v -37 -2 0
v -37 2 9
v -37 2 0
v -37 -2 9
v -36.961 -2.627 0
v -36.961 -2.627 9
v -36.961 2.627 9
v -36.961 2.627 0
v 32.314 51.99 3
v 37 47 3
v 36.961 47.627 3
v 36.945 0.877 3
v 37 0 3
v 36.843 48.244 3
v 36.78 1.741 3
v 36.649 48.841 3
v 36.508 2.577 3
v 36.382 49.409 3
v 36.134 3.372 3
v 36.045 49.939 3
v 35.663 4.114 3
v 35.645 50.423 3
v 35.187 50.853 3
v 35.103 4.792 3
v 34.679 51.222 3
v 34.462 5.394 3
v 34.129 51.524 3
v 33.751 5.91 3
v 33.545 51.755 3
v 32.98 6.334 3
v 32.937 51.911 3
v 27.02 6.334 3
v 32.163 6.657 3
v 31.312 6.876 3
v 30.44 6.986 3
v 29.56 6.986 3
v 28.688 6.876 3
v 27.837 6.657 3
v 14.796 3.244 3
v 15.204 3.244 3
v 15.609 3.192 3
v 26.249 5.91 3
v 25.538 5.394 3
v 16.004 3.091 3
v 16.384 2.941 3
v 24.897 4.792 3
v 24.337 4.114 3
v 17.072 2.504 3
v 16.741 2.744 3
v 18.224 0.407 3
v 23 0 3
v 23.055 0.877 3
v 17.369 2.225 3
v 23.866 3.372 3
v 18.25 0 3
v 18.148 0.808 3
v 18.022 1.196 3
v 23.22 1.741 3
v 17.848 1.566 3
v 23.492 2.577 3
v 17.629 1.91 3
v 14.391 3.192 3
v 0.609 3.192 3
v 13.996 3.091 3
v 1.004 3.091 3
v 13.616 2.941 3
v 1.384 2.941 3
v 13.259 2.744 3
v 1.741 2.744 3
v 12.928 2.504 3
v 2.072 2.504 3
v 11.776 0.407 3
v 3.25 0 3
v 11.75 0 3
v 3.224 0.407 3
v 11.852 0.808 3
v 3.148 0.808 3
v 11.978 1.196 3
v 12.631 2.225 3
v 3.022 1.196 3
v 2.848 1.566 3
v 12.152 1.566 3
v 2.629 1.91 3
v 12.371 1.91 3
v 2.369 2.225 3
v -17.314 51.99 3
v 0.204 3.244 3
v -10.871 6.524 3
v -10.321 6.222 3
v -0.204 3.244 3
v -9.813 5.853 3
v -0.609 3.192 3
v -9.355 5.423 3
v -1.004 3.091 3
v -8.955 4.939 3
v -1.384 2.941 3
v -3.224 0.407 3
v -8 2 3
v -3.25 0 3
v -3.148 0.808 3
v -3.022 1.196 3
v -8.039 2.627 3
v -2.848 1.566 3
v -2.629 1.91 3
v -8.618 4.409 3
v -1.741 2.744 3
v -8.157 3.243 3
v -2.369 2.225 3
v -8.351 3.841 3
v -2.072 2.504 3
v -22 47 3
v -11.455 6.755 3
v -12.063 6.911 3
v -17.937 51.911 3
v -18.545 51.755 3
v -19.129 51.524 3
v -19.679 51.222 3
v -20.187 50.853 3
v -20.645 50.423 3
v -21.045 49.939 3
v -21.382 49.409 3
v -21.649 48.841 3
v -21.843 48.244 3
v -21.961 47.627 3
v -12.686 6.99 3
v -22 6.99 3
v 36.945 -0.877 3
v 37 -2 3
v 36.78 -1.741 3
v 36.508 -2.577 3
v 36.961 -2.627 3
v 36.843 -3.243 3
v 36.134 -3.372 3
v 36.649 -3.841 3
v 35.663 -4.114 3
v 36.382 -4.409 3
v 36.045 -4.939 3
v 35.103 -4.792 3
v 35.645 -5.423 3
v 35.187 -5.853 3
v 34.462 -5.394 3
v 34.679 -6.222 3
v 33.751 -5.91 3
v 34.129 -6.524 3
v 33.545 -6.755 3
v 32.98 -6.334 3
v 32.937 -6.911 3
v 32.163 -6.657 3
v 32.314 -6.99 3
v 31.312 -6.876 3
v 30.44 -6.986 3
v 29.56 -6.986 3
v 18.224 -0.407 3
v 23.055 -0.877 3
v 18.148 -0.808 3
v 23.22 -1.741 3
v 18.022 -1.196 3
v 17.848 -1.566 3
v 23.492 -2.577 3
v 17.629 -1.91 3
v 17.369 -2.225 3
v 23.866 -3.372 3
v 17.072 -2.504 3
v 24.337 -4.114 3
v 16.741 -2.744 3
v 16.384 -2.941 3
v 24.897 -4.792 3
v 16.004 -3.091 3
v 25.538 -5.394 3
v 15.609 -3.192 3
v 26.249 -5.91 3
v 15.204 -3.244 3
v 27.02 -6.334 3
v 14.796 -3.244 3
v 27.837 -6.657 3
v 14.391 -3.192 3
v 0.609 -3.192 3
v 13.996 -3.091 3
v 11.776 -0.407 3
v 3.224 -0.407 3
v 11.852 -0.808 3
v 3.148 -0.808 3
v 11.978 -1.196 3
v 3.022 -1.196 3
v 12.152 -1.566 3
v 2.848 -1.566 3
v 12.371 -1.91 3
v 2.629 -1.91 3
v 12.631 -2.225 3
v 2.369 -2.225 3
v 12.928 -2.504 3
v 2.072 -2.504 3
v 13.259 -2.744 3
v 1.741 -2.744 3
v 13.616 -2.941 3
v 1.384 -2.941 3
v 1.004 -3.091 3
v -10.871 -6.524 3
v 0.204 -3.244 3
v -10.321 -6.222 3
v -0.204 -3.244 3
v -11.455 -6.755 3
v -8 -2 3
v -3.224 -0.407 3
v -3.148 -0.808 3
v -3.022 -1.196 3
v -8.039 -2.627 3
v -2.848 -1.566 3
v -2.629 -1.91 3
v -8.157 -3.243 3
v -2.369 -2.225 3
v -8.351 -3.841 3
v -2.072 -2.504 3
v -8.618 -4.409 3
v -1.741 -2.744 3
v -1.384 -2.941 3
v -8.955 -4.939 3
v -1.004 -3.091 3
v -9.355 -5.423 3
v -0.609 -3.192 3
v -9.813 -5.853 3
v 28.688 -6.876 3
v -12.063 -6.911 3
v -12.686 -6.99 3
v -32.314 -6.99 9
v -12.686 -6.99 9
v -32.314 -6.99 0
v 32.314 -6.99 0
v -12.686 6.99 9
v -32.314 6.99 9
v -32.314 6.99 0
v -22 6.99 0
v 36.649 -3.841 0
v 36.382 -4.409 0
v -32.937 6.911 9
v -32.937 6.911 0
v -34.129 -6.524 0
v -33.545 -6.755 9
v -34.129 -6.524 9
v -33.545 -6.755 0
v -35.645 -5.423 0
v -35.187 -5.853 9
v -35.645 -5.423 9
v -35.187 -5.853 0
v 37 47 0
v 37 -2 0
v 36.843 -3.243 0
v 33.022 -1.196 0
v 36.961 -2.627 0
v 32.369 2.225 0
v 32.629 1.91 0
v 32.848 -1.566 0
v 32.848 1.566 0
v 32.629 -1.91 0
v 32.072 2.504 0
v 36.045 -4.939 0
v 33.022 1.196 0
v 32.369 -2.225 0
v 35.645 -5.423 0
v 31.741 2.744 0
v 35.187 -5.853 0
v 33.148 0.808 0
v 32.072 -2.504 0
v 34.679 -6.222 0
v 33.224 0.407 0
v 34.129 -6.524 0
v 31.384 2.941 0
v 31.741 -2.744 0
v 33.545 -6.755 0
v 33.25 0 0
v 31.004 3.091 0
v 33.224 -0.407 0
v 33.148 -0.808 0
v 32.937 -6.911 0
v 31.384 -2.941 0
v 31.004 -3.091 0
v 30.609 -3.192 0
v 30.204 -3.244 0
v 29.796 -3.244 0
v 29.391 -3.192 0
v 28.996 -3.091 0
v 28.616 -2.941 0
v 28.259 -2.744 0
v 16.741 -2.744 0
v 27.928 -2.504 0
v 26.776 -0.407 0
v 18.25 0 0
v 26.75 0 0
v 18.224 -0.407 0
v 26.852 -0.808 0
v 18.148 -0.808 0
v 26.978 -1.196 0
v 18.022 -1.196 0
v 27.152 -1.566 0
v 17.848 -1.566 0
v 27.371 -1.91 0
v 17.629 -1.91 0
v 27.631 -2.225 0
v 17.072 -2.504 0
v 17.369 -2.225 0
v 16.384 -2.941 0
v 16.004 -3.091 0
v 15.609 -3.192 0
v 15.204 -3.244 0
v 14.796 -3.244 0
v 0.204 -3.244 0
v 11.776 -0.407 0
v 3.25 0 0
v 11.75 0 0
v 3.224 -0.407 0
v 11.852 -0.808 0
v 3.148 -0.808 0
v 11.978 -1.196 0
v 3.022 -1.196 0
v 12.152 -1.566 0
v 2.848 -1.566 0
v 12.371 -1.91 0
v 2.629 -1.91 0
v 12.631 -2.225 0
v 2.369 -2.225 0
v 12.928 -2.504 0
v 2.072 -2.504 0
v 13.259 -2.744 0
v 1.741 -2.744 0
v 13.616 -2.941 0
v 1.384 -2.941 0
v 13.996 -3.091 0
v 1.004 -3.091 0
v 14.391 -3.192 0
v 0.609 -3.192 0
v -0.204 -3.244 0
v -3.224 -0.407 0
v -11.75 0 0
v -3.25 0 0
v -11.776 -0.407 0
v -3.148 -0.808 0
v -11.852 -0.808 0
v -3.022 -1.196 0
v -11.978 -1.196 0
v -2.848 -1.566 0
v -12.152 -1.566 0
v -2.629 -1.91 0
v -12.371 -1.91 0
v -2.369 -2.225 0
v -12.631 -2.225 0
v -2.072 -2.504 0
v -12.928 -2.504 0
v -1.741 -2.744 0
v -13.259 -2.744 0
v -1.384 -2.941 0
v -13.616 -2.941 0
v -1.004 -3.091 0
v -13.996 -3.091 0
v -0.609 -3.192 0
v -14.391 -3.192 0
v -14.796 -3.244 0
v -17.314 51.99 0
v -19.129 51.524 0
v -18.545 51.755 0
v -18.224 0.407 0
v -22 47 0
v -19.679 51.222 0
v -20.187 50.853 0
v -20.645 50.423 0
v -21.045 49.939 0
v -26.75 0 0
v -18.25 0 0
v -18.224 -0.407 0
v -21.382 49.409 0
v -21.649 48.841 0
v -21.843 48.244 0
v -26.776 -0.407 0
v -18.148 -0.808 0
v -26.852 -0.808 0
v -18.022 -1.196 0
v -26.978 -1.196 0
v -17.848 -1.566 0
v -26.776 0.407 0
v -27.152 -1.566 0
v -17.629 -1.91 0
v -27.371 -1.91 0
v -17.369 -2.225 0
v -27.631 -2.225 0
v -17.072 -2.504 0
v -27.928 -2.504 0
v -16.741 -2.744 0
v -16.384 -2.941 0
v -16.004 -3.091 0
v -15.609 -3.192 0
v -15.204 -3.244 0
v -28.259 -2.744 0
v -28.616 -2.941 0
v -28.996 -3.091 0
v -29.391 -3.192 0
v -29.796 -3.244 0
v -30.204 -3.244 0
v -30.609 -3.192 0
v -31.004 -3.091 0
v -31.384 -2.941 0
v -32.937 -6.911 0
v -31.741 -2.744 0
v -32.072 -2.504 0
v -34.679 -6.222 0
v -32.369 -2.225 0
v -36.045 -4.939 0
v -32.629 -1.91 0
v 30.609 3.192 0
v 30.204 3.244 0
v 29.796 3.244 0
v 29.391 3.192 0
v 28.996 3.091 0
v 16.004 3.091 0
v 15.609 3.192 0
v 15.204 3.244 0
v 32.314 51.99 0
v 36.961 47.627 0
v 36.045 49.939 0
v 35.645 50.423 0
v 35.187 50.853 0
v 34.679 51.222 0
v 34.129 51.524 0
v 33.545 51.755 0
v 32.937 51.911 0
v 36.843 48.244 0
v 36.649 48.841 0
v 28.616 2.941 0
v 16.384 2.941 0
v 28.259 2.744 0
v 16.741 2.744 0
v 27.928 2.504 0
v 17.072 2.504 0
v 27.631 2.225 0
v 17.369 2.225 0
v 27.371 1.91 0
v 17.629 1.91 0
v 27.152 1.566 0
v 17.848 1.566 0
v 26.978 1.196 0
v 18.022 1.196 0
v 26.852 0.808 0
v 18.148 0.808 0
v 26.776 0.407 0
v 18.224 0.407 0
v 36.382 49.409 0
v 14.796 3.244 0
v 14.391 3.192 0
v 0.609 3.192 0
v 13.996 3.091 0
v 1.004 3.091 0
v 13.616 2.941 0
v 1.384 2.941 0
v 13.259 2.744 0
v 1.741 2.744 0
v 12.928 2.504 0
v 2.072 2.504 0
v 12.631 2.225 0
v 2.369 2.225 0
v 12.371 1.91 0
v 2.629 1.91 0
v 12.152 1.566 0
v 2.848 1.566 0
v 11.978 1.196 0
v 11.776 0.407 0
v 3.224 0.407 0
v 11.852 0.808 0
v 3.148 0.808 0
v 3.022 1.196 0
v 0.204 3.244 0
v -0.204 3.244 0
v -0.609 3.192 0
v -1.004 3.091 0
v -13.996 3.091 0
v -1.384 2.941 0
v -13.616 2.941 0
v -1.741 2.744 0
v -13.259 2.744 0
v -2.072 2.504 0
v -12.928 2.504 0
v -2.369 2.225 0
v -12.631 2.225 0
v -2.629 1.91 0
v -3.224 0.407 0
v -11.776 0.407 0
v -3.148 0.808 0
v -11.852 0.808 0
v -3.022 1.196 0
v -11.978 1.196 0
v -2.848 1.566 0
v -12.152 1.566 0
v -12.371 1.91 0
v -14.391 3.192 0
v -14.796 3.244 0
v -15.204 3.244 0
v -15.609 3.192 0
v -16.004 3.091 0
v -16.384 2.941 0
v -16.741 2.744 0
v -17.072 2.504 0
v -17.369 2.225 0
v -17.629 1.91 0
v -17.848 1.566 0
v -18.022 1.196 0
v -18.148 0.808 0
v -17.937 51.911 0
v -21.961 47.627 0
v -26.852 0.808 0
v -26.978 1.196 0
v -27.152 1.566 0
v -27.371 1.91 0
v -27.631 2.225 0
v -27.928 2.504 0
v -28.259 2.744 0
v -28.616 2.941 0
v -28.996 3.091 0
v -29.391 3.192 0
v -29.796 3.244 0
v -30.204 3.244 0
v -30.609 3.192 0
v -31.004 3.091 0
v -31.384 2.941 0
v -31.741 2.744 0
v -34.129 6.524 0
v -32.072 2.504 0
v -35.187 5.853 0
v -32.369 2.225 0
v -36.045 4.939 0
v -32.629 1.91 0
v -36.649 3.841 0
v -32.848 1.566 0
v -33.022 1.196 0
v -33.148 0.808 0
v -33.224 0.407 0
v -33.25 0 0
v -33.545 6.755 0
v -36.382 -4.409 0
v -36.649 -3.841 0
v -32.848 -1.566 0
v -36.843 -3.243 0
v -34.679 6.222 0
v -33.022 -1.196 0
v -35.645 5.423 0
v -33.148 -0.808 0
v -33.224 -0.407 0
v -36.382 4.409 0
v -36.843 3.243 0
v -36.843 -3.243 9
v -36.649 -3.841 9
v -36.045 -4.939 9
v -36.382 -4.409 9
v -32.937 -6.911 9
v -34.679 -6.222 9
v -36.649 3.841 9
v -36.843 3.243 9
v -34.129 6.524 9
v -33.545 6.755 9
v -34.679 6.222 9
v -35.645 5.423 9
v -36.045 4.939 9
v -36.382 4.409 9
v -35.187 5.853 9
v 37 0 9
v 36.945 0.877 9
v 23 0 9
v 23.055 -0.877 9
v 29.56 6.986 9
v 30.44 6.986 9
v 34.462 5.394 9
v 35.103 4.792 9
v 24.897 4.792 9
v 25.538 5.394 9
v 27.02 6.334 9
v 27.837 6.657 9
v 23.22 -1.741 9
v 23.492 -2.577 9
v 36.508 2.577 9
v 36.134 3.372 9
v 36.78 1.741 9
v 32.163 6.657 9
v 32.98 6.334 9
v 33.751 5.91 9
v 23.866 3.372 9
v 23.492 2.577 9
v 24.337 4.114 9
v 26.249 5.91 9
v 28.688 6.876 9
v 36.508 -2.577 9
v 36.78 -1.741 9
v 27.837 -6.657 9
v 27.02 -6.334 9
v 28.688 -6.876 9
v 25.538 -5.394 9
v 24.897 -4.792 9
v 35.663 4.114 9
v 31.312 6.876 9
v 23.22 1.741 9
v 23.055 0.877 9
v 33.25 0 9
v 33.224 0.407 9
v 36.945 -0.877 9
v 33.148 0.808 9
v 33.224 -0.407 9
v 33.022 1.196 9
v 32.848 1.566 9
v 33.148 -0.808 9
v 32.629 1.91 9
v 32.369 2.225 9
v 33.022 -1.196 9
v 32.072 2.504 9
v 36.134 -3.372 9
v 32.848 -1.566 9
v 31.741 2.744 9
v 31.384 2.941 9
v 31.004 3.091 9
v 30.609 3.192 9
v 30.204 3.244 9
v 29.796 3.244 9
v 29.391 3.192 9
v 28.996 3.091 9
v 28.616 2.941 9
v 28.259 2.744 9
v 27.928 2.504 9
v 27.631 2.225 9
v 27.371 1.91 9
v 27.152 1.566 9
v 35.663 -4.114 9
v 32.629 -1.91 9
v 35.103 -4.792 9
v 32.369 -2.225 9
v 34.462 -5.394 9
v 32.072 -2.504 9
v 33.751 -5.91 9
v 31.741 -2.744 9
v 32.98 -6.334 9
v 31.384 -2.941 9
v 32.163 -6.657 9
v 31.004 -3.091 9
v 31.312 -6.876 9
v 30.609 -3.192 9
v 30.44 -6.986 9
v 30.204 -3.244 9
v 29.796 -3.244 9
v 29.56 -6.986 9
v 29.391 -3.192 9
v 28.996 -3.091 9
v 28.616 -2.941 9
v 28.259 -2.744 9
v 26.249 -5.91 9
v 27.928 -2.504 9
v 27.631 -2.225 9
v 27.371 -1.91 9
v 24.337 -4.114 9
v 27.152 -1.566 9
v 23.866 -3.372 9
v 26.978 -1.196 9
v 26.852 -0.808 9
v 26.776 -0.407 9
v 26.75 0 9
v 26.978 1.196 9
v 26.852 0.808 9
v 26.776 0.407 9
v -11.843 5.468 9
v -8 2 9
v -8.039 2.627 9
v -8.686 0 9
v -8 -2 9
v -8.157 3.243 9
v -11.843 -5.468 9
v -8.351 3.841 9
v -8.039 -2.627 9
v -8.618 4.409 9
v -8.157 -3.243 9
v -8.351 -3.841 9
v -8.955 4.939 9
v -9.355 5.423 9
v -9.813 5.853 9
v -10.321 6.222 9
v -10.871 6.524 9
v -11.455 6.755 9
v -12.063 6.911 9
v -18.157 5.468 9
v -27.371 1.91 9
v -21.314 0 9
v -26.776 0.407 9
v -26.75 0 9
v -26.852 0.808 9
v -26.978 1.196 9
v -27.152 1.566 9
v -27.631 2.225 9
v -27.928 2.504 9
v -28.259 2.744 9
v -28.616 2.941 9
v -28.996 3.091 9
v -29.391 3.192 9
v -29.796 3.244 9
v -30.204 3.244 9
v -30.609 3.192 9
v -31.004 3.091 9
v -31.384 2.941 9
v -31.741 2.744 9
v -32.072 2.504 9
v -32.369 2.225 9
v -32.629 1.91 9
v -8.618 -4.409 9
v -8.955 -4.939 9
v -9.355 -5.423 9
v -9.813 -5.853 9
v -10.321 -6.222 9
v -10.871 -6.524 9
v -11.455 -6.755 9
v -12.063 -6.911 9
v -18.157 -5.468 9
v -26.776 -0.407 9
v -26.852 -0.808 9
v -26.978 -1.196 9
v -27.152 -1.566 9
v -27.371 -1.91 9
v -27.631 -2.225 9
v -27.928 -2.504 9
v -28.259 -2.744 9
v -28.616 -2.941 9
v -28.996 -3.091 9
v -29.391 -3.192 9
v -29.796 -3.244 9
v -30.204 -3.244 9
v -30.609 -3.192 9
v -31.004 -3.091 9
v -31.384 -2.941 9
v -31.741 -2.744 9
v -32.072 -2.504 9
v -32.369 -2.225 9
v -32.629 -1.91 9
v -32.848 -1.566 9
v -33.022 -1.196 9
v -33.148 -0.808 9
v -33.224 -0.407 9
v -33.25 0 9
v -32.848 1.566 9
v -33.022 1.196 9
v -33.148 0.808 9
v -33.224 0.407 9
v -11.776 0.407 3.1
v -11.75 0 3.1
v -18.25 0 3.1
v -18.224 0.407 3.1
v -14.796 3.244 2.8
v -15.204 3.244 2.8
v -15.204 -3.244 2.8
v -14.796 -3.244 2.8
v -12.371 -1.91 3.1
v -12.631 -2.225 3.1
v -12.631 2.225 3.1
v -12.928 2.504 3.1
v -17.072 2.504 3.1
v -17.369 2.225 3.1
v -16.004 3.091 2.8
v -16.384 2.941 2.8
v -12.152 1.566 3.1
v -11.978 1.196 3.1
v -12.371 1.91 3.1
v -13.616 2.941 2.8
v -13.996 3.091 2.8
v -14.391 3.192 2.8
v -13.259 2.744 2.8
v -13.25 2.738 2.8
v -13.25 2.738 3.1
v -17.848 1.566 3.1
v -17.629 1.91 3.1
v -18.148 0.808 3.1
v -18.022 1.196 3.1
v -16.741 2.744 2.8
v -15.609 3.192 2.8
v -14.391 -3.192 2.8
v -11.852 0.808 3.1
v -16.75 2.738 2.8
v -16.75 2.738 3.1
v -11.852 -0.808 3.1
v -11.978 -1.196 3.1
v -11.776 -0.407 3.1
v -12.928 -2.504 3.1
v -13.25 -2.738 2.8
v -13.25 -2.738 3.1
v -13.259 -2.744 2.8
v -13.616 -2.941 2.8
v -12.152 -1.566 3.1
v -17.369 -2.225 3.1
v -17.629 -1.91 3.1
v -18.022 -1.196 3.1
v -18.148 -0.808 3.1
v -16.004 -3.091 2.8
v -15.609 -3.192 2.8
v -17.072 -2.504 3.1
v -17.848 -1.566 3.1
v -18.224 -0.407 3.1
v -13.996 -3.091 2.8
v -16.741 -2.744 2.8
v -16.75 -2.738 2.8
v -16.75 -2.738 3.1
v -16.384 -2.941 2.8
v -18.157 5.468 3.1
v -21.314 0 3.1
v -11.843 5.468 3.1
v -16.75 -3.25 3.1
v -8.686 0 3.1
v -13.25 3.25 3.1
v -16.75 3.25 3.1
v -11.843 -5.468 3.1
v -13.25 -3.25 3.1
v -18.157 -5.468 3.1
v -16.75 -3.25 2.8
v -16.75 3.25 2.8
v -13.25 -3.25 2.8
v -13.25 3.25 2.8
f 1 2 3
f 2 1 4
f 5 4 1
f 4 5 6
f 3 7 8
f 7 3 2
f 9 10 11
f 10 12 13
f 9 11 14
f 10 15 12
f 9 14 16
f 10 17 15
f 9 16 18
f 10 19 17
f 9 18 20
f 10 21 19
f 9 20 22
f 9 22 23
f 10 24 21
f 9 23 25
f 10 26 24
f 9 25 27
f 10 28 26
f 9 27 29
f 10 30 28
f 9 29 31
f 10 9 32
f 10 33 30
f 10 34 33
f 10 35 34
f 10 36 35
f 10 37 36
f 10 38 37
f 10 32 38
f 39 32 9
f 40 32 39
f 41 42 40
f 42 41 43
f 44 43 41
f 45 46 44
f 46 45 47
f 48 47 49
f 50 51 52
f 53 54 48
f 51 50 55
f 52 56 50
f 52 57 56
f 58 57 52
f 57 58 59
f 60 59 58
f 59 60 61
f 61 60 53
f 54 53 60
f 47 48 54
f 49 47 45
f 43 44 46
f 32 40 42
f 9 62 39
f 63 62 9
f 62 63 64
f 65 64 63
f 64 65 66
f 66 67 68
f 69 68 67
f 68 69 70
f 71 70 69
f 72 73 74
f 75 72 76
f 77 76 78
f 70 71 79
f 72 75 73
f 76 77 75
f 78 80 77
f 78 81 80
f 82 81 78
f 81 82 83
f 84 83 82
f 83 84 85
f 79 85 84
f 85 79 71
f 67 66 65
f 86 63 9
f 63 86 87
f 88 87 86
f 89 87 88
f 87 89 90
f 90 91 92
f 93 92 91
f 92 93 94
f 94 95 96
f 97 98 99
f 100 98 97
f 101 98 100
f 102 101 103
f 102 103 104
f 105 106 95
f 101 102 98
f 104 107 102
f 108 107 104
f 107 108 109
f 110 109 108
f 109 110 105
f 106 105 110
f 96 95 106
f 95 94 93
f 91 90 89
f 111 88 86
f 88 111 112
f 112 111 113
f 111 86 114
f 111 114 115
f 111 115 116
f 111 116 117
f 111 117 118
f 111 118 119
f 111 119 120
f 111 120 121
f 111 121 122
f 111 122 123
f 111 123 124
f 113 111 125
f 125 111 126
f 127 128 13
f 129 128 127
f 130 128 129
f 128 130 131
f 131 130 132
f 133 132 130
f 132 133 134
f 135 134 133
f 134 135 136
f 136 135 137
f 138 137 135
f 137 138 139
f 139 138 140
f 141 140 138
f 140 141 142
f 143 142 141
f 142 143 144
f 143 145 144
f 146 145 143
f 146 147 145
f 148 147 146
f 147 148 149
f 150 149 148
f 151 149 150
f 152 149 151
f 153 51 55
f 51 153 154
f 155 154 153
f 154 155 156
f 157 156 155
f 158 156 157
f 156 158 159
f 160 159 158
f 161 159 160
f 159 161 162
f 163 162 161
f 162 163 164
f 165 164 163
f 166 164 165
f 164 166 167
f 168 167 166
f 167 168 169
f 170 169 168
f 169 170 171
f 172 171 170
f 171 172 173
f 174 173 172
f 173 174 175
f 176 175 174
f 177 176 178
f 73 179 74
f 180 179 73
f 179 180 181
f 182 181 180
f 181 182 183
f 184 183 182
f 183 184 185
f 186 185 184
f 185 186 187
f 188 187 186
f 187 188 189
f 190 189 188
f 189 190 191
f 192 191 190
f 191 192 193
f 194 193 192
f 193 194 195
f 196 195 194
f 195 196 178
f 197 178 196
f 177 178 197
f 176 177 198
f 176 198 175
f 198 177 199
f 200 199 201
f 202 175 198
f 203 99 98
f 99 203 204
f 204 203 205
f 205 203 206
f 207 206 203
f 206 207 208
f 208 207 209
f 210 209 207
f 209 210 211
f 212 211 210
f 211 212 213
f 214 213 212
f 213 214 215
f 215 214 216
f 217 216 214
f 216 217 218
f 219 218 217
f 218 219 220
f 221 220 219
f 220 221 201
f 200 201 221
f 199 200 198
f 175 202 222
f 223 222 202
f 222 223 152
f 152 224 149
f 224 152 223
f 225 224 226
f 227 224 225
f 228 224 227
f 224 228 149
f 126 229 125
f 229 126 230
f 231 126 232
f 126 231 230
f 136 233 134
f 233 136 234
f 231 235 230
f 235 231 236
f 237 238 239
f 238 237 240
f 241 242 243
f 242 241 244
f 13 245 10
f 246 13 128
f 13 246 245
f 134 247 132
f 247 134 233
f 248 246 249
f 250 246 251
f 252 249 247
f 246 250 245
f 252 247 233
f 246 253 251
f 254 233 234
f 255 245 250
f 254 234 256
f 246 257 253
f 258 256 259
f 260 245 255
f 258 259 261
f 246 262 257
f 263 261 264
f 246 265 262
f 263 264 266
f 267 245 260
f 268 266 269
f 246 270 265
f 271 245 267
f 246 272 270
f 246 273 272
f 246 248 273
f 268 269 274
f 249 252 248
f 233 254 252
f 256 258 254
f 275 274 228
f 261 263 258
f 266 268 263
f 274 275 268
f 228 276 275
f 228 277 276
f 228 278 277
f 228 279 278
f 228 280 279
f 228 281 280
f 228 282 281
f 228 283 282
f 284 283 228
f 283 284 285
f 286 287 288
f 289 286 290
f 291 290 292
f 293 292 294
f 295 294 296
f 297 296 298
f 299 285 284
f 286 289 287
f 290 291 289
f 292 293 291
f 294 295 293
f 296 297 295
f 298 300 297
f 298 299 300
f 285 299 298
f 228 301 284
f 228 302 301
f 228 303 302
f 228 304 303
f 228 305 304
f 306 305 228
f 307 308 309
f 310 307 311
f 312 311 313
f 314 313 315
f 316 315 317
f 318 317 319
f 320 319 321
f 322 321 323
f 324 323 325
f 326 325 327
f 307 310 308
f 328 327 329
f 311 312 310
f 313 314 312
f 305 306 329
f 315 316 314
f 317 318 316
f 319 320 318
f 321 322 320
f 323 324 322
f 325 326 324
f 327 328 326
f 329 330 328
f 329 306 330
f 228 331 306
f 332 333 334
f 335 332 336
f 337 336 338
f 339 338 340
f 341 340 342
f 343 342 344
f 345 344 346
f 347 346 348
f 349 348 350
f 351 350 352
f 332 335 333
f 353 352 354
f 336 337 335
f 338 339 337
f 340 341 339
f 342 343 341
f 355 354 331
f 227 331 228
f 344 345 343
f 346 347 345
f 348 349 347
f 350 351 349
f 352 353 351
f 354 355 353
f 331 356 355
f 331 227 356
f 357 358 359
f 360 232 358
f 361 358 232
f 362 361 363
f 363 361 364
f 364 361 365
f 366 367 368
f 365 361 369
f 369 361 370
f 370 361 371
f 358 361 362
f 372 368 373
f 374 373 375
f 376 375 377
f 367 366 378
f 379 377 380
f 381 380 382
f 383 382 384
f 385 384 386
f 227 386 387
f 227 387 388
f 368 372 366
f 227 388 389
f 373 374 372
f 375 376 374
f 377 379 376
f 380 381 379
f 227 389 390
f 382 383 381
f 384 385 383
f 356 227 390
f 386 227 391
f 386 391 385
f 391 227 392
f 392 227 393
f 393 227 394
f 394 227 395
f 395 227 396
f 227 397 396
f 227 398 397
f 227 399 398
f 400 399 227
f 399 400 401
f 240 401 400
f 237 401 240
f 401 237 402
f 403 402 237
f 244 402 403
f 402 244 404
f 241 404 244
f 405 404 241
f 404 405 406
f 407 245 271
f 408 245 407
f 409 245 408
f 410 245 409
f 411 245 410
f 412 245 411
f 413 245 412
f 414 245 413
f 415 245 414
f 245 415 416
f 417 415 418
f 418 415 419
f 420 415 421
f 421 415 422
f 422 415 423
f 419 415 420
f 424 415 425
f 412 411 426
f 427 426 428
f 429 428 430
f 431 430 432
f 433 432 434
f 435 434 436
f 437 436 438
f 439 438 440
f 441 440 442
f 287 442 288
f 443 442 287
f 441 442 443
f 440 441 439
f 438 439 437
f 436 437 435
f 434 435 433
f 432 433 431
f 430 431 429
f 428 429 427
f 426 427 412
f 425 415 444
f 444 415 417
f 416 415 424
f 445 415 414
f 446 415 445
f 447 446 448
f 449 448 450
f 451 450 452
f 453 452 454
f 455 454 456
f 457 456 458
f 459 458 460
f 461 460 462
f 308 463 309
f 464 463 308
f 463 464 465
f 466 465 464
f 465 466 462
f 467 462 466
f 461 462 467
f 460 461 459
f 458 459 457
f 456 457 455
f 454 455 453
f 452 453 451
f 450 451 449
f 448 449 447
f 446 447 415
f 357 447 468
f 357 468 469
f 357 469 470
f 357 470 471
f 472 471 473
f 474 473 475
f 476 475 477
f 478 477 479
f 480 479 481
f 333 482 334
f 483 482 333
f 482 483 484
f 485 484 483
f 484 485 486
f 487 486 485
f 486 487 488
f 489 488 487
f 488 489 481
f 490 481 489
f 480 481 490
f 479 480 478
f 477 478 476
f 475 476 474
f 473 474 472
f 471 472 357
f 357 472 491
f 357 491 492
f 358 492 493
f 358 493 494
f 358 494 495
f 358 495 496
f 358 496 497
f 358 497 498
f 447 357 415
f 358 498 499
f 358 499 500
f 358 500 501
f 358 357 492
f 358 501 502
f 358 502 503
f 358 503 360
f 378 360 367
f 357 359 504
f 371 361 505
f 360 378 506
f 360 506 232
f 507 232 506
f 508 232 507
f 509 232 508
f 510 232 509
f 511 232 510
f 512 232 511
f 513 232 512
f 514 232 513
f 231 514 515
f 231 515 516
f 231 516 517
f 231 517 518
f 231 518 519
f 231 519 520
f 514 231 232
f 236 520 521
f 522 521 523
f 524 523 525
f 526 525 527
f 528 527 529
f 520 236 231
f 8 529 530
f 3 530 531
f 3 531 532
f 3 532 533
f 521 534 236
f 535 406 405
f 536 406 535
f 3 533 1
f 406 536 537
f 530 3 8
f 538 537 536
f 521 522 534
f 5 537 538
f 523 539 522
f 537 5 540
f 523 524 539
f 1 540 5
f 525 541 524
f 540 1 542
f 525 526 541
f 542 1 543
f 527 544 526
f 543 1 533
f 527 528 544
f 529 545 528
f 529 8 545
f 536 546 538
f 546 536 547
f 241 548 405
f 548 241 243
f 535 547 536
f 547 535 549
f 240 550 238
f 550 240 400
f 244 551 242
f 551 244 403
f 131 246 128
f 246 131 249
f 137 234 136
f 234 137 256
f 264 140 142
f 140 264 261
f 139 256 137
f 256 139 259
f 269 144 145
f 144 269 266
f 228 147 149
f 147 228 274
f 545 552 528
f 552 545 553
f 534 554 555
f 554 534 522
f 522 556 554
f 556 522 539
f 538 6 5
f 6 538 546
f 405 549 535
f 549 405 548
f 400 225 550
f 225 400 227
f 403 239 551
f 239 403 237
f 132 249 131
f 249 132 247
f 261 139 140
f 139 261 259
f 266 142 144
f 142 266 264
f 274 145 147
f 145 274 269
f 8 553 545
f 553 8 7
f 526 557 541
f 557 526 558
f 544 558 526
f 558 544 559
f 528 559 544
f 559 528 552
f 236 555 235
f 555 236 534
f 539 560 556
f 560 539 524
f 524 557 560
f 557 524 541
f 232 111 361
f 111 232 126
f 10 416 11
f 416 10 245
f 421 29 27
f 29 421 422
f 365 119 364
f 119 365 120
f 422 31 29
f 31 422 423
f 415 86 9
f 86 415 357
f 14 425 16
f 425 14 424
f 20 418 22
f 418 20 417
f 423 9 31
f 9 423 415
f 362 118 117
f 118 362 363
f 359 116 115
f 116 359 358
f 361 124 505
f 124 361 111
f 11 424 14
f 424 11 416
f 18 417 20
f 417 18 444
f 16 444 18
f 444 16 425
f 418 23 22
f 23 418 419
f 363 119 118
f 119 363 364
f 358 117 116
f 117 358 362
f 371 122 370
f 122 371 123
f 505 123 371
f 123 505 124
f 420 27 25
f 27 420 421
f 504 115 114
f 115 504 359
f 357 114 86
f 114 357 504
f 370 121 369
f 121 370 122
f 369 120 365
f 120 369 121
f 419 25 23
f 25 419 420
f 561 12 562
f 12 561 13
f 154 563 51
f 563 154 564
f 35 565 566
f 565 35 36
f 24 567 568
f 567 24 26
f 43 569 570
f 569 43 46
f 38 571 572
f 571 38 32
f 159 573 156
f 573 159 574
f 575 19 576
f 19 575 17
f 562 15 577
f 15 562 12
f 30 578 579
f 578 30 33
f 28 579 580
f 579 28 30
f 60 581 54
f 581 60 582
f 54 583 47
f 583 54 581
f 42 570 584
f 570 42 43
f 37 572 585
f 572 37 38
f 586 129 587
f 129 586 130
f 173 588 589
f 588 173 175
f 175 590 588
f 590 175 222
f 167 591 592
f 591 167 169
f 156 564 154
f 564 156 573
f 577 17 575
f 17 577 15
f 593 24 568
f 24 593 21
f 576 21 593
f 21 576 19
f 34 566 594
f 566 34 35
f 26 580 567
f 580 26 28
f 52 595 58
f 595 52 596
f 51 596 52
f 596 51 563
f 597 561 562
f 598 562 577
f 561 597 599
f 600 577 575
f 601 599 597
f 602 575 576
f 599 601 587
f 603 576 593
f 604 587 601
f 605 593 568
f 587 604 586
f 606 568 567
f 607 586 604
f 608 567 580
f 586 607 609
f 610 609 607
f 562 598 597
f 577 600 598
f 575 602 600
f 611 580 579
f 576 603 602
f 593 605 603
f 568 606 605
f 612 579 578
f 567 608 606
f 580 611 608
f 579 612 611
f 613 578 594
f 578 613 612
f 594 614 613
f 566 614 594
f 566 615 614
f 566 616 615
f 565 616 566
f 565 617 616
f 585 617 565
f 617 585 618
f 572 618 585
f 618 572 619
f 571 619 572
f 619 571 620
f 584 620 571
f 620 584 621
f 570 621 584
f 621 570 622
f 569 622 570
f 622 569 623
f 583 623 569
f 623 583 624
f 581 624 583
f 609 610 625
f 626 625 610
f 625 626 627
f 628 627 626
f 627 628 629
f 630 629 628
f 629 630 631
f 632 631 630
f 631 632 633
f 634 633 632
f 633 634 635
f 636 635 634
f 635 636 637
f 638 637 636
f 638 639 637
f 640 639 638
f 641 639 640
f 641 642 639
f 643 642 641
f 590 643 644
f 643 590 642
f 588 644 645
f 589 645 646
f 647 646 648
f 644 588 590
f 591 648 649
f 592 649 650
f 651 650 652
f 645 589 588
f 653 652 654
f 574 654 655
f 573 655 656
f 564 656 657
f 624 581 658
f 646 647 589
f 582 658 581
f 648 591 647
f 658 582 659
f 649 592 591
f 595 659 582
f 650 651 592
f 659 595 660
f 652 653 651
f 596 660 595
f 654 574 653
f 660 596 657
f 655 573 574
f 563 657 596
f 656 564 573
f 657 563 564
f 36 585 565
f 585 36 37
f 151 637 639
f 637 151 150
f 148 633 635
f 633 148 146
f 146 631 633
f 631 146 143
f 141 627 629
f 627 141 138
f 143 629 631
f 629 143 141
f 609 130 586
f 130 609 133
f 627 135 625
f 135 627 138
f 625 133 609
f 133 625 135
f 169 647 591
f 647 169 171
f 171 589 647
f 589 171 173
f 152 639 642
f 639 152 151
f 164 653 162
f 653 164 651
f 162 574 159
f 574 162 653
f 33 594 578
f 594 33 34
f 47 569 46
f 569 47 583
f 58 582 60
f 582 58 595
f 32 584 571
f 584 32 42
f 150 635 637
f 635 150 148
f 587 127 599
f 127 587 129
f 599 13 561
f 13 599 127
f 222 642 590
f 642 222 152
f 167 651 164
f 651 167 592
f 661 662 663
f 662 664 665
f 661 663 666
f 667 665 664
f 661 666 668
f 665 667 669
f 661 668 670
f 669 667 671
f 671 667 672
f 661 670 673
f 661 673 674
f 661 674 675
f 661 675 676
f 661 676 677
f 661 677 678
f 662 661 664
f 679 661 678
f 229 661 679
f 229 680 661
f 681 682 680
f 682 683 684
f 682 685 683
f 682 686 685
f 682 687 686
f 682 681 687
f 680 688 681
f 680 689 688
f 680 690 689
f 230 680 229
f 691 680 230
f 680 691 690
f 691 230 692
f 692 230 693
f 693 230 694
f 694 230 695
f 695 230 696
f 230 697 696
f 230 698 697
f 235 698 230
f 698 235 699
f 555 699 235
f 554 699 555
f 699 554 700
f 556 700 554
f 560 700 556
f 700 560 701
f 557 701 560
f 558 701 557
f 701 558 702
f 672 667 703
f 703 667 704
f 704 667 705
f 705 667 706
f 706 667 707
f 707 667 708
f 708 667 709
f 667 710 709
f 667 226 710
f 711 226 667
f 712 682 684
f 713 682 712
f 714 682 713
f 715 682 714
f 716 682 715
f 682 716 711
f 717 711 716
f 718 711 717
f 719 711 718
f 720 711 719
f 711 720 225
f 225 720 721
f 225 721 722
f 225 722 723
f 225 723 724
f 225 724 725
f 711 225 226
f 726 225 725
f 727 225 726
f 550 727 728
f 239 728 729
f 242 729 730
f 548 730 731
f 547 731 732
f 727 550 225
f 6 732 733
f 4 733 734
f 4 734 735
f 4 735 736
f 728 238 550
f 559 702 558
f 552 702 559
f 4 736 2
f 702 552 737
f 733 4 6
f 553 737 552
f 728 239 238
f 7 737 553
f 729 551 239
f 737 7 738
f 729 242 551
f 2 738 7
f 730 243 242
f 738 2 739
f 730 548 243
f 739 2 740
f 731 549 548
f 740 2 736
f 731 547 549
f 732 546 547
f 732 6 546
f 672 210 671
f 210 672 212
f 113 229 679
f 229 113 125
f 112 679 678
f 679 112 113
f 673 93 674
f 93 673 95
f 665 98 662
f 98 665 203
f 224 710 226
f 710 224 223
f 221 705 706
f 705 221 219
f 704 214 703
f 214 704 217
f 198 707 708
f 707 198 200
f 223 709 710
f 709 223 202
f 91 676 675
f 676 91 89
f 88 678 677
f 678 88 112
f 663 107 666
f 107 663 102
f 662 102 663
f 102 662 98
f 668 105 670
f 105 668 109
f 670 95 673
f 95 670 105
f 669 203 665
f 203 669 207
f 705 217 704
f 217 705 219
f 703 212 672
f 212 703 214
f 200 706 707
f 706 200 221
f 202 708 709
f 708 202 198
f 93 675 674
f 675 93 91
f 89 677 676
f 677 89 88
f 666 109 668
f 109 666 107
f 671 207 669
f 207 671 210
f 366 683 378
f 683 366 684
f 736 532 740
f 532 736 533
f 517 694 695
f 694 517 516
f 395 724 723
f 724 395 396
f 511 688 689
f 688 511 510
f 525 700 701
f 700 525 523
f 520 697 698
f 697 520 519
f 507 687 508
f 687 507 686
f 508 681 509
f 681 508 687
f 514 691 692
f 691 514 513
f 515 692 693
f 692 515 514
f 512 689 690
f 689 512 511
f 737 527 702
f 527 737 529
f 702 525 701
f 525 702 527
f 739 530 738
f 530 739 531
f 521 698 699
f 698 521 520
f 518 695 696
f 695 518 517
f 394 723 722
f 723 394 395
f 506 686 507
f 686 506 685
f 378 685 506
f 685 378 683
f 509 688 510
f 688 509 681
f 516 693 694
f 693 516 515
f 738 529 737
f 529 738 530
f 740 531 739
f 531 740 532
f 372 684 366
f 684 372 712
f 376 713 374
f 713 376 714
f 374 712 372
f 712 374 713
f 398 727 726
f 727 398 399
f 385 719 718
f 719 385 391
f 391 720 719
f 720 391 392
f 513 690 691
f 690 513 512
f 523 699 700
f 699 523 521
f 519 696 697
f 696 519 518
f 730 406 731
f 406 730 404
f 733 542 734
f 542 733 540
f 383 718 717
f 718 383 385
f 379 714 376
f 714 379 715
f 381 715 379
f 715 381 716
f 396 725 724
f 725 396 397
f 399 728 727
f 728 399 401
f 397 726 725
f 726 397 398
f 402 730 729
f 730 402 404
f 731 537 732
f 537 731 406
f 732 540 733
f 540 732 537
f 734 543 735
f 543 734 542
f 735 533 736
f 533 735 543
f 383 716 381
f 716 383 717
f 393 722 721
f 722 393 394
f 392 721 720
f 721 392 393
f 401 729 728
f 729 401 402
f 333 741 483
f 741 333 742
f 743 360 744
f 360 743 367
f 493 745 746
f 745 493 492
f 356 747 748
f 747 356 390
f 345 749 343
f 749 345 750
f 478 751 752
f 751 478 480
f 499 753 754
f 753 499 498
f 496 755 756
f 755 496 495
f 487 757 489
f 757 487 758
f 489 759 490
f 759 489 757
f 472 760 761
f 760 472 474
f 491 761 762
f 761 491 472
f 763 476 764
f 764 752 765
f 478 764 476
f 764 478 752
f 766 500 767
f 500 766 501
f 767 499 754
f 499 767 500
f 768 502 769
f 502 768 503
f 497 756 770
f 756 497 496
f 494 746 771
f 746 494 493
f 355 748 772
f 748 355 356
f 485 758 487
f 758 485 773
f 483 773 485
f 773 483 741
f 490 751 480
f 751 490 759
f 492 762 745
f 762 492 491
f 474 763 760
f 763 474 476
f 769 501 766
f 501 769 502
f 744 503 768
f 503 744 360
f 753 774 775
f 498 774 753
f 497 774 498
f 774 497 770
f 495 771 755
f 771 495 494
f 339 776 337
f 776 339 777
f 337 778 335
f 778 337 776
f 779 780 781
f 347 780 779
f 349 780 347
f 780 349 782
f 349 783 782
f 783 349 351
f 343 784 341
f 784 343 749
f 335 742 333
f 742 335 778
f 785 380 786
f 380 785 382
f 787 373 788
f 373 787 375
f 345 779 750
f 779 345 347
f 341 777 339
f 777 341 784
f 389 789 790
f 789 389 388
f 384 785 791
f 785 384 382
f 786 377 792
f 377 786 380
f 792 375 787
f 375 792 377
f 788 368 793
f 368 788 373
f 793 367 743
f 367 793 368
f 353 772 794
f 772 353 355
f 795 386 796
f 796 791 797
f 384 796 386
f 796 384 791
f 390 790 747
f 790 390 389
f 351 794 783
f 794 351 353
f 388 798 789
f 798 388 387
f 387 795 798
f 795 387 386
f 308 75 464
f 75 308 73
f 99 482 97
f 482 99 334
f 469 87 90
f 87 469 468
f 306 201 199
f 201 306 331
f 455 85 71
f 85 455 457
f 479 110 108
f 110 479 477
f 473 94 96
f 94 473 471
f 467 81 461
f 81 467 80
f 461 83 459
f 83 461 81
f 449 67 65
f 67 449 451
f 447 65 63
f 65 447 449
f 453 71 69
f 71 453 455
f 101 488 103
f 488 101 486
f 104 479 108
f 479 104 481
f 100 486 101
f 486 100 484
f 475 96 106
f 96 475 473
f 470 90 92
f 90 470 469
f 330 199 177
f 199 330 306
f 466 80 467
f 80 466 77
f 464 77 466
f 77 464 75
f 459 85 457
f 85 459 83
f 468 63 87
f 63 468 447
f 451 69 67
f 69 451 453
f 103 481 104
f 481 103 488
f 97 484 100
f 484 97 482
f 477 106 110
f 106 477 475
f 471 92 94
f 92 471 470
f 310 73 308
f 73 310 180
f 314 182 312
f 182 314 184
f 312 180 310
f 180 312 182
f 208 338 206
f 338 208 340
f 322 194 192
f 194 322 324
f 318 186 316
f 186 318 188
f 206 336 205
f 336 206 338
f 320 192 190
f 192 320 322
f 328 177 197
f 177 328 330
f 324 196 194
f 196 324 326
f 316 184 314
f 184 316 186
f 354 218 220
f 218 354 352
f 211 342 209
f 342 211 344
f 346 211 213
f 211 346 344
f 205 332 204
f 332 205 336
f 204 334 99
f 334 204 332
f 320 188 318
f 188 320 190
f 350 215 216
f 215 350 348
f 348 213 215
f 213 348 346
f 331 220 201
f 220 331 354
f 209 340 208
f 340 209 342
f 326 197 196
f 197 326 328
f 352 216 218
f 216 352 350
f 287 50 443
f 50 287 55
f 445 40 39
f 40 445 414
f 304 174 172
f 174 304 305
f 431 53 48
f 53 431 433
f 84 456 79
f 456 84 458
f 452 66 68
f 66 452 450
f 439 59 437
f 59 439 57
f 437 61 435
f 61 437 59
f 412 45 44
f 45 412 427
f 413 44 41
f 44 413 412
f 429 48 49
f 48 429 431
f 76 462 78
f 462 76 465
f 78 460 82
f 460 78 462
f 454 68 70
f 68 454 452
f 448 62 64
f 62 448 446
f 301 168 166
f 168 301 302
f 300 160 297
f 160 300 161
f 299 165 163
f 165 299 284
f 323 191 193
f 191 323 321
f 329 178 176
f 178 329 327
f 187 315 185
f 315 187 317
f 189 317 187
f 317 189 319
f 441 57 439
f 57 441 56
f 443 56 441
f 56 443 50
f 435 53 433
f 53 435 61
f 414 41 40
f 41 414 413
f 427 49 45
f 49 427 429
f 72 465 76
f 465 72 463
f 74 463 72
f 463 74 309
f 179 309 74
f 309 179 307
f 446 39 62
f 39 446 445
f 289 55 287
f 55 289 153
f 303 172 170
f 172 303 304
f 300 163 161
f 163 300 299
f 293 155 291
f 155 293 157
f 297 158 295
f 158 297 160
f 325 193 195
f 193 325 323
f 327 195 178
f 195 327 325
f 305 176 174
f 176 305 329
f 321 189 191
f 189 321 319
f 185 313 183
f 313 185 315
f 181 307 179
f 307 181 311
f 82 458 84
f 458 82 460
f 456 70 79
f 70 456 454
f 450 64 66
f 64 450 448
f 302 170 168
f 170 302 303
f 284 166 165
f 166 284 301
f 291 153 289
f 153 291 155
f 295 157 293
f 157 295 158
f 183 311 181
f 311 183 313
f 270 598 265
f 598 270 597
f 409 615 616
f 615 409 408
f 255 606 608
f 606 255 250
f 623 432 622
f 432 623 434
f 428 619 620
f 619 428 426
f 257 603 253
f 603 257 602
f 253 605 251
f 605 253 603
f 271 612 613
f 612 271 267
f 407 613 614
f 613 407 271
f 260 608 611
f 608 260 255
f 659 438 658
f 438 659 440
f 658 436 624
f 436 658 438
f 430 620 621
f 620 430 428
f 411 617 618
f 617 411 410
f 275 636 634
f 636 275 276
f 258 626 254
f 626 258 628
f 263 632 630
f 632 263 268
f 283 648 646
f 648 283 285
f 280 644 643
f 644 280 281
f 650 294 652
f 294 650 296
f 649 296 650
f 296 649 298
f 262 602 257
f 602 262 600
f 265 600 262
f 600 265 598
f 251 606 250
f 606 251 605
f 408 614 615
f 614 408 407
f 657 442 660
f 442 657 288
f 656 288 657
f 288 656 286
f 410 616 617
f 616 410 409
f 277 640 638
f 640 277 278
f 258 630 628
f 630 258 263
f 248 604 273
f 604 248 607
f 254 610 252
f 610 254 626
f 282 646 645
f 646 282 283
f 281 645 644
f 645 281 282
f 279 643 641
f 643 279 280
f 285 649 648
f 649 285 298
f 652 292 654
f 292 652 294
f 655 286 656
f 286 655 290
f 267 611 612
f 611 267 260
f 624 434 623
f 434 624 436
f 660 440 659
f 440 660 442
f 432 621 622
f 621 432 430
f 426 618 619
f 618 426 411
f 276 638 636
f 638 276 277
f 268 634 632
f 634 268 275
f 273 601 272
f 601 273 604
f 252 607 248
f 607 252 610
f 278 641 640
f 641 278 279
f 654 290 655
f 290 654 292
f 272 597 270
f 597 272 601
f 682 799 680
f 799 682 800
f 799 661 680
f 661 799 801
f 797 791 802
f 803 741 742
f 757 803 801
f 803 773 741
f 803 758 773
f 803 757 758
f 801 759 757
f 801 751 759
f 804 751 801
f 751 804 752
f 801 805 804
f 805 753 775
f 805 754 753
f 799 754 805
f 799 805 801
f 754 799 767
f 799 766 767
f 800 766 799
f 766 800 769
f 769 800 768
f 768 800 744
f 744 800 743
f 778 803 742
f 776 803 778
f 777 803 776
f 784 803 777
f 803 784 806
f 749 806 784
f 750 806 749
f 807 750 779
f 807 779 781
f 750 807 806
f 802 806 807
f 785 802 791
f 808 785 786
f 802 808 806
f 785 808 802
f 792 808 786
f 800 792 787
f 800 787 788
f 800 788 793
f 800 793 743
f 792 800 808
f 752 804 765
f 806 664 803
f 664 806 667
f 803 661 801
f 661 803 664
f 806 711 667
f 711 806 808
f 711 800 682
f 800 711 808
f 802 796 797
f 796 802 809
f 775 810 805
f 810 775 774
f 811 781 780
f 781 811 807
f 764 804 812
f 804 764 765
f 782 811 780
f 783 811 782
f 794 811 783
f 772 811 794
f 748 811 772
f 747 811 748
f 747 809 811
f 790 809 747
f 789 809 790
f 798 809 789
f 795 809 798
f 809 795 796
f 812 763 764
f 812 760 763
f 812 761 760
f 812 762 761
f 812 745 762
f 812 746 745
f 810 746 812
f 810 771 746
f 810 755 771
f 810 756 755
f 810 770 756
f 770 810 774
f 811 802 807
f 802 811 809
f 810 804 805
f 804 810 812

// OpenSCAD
$fn = 50;


difference() {
	union() {
		translate(v = [0, 0, 0]) {
			rotate(a = [0, 0, 0]) {
				hull() {
					translate(v = [-32.0000000000, 2.0000000000, 0]) {
						rotate(a = [0, 0, 0]) {
							translate(v = [0, 0, 0]) {
								rotate(a = [0, 0, 0]) {
									cylinder(h = 3, r = 5);
								}
							}
						}
					}
					translate(v = [32.0000000000, 2.0000000000, 0]) {
						rotate(a = [0, 0, 0]) {
							translate(v = [0, 0, 0]) {
								rotate(a = [0, 0, 0]) {
									cylinder(h = 3, r = 5);
								}
							}
						}
					}
					translate(v = [-32.0000000000, -2.0000000000, 0]) {
						rotate(a = [0, 0, 0]) {
							translate(v = [0, 0, 0]) {
								rotate(a = [0, 0, 0]) {
									cylinder(h = 3, r = 5);
								}
							}
						}
					}
					translate(v = [32.0000000000, -2.0000000000, 0]) {
						rotate(a = [0, 0, 0]) {
							translate(v = [0, 0, 0]) {
								rotate(a = [0, 0, 0]) {
									cylinder(h = 3, r = 5);
								}
							}
						}
					}
				}
			}
		}
		translate(v = [7.5000000000, 22.5000000000, 0]) {
			rotate(a = [0, 0, 0]) {
				hull() {
					translate(v = [-24.5000000000, 24.5000000000, 0]) {
						rotate(a = [0, 0, 0]) {
							translate(v = [0, 0, 0]) {
								rotate(a = [0, 0, 0]) {
									cylinder(h = 3, r = 5);
								}
							}
						}
					}
					translate(v = [24.5000000000, 24.5000000000, 0]) {
						rotate(a = [0, 0, 0]) {
							translate(v = [0, 0, 0]) {
								rotate(a = [0, 0, 0]) {
									cylinder(h = 3, r = 5);
								}
							}
						}
					}
					translate(v = [-24.5000000000, -24.5000000000, 0]) {
						rotate(a = [0, 0, 0]) {
							translate(v = [0, 0, 0]) {
								rotate(a = [0, 0, 0]) {
									cylinder(h = 3, r = 5);
								}
							}
						}
					}
					translate(v = [24.5000000000, -24.5000000000, 0]) {
						rotate(a = [0, 0, 0]) {
							translate(v = [0, 0, 0]) {
								rotate(a = [0, 0, 0]) {
									cylinder(h = 3, r = 5);
								}
							}
						}
					}
				}
			}
		}
		translate(v = [30.0000000000, 0, 0]) {
			rotate(a = [0, 0, 0]) {
				cylinder(h = 9, r = 7.0000000000);
			}
		}
		translate(v = [-22.5000000000, 0, 0]) {
			rotate(a = [0, 0, 0]) {
				hull() {
					translate(v = [-9.5000000000, 2.0000000000, 0]) {
						rotate(a = [0, 0, 0]) {
							translate(v = [0, 0, 0]) {
								rotate(a = [0, 0, 0]) {
									cylinder(h = 9, r = 5);
								}
							}
						}
					}
					translate(v = [9.5000000000, 2.0000000000, 0]) {
						rotate(a = [0, 0, 0]) {
							translate(v = [0, 0, 0]) {
								rotate(a = [0, 0, 0]) {
									cylinder(h = 9, r = 5);
								}
							}
						}
					}
					translate(v = [-9.5000000000, -2.0000000000, 0]) {
						rotate(a = [0, 0, 0]) {
							translate(v = [0, 0, 0]) {
								rotate(a = [0, 0, 0]) {
									cylinder(h = 9, r = 5);
								}
							}
						}
					}
					translate(v = [9.5000000000, -2.0000000000, 0]) {
						rotate(a = [0, 0, 0]) {
							translate(v = [0, 0, 0]) {
								rotate(a = [0, 0, 0]) {
									cylinder(h = 9, r = 5);
								}
							}
						}
					}
				}
			}
		}
	}
	union() {
		translate(v = [-30.0000000000, 0.0000000000, 0]) {
			rotate(a = [0, 0, 0]) {
				translate(v = [0, 0, -50]) {
					rotate(a = [0, 0, 0]) {
						cylinder(h = 100, r = 3.2500000000);
					}
				}
			}
		}
		translate(v = [-15.0000000000, 0.0000000000, 0]) {
			rotate(a = [0, 0, 0]) {
				translate(v = [0, 0, -50]) {
					rotate(a = [0, 0, 0]) {
						cylinder(h = 100, r = 3.2500000000);
					}
				}
			}
		}
		translate(v = [0.0000000000, 0.0000000000, 0]) {
			rotate(a = [0, 0, 0]) {
				translate(v = [0, 0, -50]) {
					rotate(a = [0, 0, 0]) {
						cylinder(h = 100, r = 3.2500000000);
					}
				}
			}
		}
		translate(v = [15.0000000000, 0.0000000000, 0]) {
			rotate(a = [0, 0, 0]) {
				translate(v = [0, 0, -50]) {
					rotate(a = [0, 0, 0]) {
						cylinder(h = 100, r = 3.2500000000);
					}
				}
			}
		}
		translate(v = [30.0000000000, 0.0000000000, 0]) {
			rotate(a = [0, 0, 0]) {
				translate(v = [0, 0, -50]) {
					rotate(a = [0, 0, 0]) {
						cylinder(h = 100, r = 3.2500000000);
					}
				}
			}
		}
		translate(v = [-15.0000000000, 0, 3.1000000000]) {
			rotate(a = [0, 0, 0]) {
				#translate(v = [0, 0, 0]) {
					rotate(a = [0, 0, 0]) {
						linear_extrude(height = 5.9000000000) {
							polygon(points = [[6.3142500000, 0.0000000000], [3.1571250000, 5.4683009058], [-3.1571250000, 5.4683009058], [-6.3142500000, 0.0000000000], [-3.1571250000, -5.4683009058], [3.1571250000, -5.4683009058]]);
						}
					}
				}
			}
		}
		#translate(v = [-16.7500000000, -3.2500000000, 9.0000000000]) {
			rotate(a = [0, 0, 0]) {
				cube(size = [3.5000000000, 6.5000000000, 0.3000000000]);
			}
		}
		#translate(v = [-16.7500000000, -1.7500000000, 9.3000000000]) {
			rotate(a = [0, 0, 0]) {
				cube(size = [3.5000000000, 3.5000000000, 0.3000000000]);
			}
		}
		#translate(v = [-16.7500000000, -3.2500000000, 2.8000000000]) {
			rotate(a = [0, 0, 0]) {
				cube(size = [3.5000000000, 6.5000000000, 0.3000000000]);
			}
		}
		#translate(v = [-16.7500000000, -1.7500000000, 2.5000000000]) {
			rotate(a = [0, 0, 0]) {
				cube(size = [3.5000000000, 3.5000000000, 0.3000000000]);
			}
		}
	}
}
